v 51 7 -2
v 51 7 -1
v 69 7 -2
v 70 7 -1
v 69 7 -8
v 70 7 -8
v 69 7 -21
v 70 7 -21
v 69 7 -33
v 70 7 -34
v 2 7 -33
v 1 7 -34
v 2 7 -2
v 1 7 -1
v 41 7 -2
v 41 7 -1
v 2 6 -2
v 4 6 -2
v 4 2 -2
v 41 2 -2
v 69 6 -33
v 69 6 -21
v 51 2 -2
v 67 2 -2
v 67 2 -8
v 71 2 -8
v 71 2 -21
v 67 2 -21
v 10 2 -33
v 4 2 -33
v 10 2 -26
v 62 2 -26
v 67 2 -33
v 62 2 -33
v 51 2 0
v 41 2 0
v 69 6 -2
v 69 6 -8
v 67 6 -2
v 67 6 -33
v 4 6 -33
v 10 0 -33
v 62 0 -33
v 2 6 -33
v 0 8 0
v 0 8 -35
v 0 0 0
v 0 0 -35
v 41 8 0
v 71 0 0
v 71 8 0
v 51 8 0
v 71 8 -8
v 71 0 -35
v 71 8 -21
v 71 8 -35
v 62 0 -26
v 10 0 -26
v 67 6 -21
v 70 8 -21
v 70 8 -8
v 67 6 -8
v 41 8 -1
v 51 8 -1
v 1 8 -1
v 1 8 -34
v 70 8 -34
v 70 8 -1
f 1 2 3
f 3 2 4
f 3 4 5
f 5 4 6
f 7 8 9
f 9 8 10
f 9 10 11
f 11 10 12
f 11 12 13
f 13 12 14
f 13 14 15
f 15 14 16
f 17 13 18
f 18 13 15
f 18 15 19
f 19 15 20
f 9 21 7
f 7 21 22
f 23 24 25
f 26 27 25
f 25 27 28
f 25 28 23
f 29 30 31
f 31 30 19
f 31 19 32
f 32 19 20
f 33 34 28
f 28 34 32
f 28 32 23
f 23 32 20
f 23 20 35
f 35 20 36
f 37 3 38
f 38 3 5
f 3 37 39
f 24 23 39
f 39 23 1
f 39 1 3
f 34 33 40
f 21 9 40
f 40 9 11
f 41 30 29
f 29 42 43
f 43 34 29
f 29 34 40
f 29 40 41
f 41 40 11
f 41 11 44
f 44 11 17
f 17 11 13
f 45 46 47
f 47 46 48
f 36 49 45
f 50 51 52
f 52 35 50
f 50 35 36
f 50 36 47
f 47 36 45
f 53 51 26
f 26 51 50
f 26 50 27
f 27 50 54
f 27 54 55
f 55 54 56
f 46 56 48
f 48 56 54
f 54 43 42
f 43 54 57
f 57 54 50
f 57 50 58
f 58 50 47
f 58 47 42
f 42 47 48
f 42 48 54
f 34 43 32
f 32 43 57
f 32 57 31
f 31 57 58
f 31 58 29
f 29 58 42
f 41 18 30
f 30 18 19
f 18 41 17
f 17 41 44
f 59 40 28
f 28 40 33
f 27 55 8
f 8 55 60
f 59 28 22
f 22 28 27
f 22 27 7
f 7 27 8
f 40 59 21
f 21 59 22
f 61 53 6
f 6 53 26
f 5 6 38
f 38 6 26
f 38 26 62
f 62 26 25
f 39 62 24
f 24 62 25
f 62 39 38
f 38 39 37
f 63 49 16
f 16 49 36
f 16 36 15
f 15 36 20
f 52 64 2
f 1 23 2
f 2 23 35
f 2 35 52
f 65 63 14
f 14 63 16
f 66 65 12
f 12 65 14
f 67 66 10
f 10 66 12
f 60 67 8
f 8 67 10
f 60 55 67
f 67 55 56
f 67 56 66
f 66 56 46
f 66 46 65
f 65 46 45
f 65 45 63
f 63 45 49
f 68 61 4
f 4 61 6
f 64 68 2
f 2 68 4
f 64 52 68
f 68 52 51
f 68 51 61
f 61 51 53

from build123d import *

# Parameters (mm, degrees)
SKETCH1_W           = 71
SKETCH1_H           = 35
BOSS_EXTRUDE1_DEPTH = 2
SKETCH2_W           = 71
SKETCH2_H           = 35
SKETCH2_W_2         = 67
SKETCH2_H_2         = 31
BOSS_EXTRUDE2_DEPTH = 5
SKETCH3_W           = 52
SKETCH3_H           = 7
CUT_EXTRUDE1_DEPTH  = 5
SKETCH4_W           = 2
SKETCH4_H           = 31
SKETCH4_H_2         = 12
SKETCH4_H_3         = 6
BOSS_EXTRUDE3_DEPTH = 4
SKETCH5_W           = 13
SKETCH5_H           = 5
CUT_EXTRUDE2_DEPTH  = 2
SKETCH6_W           = 10
SKETCH6_H           = 5
CUT_EXTRUDE3_DEPTH  = 2
BOSS_EXTRUDE4_DEPTH = 1


with BuildPart() as part:
    # Sketch1 → Boss-Extrude1 (new body)
    with BuildSketch(Plane(origin=(0, 0, 0), x_dir=(1, 0, 0), z_dir=(0, 1, 0))):
        with Locations((35.5, 17.5)):
            Rectangle(SKETCH1_W, SKETCH1_H)
    extrude(amount=BOSS_EXTRUDE1_DEPTH)

    # Sketch2 → Boss-Extrude2 (add)
    with BuildSketch(Plane(origin=(0, 2, 0), x_dir=(1, 0, 0), z_dir=(0, 1, 0))):
        with Locations((35.5, 17.5)):
            Rectangle(SKETCH2_W, SKETCH2_H)
        with Locations((35.5, 17.5)):
            Rectangle(SKETCH2_W_2, SKETCH2_H_2, mode=Mode.SUBTRACT)
    extrude(amount=BOSS_EXTRUDE2_DEPTH)

    # Sketch3 → Cut-Extrude1 (cut)
    with BuildSketch(Plane(origin=(0, 2, 0), x_dir=(1, 0, 0), z_dir=(0, 1, 0))):
        with Locations((36, 29.5)):
            Rectangle(SKETCH3_W, SKETCH3_H)
    extrude(amount=-CUT_EXTRUDE1_DEPTH, mode=Mode.SUBTRACT)

    # Sketch4 → Boss-Extrude3 (add)
    with BuildSketch(Plane(origin=(0, 2, 0), x_dir=(1, 0, 0), z_dir=(0, 1, 0))):
        with Locations((3, 17.5)):
            Rectangle(SKETCH4_W, SKETCH4_H)
        with Locations((68, 27)):
            Rectangle(SKETCH4_W, SKETCH4_H_2)
        with Locations((68, 5)):
            Rectangle(SKETCH4_W, SKETCH4_H_3)
    extrude(amount=BOSS_EXTRUDE3_DEPTH)

    # Sketch5 → Cut-Extrude2 (cut)
    with BuildSketch(Plane.ZY.offset(-69)):
        with Locations((-14.5, 4.5)):
            Rectangle(SKETCH5_W, SKETCH5_H)
    extrude(amount=-CUT_EXTRUDE2_DEPTH, mode=Mode.SUBTRACT)

    # Sketch6 → Cut-Extrude3 (cut)
    with BuildSketch(Plane(origin=(0, 0, -2), x_dir=(-1, 0, 0), z_dir=(0, 0, -1))):
        with Locations((-46, 4.5)):
            Rectangle(SKETCH6_W, SKETCH6_H)
    extrude(amount=-CUT_EXTRUDE3_DEPTH, mode=Mode.SUBTRACT)

    # Sketch7 → Boss-Extrude4 (add)
    with BuildSketch(Plane(origin=(0, 7, 0), x_dir=(1, 0, 0), z_dir=(0, 1, 0))):
        Polygon((71, 35), (0, 35), (0, 0), (41, 0), (41, 1), (1, 1), (1, 34), (70, 34), (70, 21), (71, 21), align=None)
        Polygon((51, 0), (71, 0), (71, 8), (70, 8), (70, 1), (51, 1), align=None)
    extrude(amount=BOSS_EXTRUDE4_DEPTH)


solid = part.part
